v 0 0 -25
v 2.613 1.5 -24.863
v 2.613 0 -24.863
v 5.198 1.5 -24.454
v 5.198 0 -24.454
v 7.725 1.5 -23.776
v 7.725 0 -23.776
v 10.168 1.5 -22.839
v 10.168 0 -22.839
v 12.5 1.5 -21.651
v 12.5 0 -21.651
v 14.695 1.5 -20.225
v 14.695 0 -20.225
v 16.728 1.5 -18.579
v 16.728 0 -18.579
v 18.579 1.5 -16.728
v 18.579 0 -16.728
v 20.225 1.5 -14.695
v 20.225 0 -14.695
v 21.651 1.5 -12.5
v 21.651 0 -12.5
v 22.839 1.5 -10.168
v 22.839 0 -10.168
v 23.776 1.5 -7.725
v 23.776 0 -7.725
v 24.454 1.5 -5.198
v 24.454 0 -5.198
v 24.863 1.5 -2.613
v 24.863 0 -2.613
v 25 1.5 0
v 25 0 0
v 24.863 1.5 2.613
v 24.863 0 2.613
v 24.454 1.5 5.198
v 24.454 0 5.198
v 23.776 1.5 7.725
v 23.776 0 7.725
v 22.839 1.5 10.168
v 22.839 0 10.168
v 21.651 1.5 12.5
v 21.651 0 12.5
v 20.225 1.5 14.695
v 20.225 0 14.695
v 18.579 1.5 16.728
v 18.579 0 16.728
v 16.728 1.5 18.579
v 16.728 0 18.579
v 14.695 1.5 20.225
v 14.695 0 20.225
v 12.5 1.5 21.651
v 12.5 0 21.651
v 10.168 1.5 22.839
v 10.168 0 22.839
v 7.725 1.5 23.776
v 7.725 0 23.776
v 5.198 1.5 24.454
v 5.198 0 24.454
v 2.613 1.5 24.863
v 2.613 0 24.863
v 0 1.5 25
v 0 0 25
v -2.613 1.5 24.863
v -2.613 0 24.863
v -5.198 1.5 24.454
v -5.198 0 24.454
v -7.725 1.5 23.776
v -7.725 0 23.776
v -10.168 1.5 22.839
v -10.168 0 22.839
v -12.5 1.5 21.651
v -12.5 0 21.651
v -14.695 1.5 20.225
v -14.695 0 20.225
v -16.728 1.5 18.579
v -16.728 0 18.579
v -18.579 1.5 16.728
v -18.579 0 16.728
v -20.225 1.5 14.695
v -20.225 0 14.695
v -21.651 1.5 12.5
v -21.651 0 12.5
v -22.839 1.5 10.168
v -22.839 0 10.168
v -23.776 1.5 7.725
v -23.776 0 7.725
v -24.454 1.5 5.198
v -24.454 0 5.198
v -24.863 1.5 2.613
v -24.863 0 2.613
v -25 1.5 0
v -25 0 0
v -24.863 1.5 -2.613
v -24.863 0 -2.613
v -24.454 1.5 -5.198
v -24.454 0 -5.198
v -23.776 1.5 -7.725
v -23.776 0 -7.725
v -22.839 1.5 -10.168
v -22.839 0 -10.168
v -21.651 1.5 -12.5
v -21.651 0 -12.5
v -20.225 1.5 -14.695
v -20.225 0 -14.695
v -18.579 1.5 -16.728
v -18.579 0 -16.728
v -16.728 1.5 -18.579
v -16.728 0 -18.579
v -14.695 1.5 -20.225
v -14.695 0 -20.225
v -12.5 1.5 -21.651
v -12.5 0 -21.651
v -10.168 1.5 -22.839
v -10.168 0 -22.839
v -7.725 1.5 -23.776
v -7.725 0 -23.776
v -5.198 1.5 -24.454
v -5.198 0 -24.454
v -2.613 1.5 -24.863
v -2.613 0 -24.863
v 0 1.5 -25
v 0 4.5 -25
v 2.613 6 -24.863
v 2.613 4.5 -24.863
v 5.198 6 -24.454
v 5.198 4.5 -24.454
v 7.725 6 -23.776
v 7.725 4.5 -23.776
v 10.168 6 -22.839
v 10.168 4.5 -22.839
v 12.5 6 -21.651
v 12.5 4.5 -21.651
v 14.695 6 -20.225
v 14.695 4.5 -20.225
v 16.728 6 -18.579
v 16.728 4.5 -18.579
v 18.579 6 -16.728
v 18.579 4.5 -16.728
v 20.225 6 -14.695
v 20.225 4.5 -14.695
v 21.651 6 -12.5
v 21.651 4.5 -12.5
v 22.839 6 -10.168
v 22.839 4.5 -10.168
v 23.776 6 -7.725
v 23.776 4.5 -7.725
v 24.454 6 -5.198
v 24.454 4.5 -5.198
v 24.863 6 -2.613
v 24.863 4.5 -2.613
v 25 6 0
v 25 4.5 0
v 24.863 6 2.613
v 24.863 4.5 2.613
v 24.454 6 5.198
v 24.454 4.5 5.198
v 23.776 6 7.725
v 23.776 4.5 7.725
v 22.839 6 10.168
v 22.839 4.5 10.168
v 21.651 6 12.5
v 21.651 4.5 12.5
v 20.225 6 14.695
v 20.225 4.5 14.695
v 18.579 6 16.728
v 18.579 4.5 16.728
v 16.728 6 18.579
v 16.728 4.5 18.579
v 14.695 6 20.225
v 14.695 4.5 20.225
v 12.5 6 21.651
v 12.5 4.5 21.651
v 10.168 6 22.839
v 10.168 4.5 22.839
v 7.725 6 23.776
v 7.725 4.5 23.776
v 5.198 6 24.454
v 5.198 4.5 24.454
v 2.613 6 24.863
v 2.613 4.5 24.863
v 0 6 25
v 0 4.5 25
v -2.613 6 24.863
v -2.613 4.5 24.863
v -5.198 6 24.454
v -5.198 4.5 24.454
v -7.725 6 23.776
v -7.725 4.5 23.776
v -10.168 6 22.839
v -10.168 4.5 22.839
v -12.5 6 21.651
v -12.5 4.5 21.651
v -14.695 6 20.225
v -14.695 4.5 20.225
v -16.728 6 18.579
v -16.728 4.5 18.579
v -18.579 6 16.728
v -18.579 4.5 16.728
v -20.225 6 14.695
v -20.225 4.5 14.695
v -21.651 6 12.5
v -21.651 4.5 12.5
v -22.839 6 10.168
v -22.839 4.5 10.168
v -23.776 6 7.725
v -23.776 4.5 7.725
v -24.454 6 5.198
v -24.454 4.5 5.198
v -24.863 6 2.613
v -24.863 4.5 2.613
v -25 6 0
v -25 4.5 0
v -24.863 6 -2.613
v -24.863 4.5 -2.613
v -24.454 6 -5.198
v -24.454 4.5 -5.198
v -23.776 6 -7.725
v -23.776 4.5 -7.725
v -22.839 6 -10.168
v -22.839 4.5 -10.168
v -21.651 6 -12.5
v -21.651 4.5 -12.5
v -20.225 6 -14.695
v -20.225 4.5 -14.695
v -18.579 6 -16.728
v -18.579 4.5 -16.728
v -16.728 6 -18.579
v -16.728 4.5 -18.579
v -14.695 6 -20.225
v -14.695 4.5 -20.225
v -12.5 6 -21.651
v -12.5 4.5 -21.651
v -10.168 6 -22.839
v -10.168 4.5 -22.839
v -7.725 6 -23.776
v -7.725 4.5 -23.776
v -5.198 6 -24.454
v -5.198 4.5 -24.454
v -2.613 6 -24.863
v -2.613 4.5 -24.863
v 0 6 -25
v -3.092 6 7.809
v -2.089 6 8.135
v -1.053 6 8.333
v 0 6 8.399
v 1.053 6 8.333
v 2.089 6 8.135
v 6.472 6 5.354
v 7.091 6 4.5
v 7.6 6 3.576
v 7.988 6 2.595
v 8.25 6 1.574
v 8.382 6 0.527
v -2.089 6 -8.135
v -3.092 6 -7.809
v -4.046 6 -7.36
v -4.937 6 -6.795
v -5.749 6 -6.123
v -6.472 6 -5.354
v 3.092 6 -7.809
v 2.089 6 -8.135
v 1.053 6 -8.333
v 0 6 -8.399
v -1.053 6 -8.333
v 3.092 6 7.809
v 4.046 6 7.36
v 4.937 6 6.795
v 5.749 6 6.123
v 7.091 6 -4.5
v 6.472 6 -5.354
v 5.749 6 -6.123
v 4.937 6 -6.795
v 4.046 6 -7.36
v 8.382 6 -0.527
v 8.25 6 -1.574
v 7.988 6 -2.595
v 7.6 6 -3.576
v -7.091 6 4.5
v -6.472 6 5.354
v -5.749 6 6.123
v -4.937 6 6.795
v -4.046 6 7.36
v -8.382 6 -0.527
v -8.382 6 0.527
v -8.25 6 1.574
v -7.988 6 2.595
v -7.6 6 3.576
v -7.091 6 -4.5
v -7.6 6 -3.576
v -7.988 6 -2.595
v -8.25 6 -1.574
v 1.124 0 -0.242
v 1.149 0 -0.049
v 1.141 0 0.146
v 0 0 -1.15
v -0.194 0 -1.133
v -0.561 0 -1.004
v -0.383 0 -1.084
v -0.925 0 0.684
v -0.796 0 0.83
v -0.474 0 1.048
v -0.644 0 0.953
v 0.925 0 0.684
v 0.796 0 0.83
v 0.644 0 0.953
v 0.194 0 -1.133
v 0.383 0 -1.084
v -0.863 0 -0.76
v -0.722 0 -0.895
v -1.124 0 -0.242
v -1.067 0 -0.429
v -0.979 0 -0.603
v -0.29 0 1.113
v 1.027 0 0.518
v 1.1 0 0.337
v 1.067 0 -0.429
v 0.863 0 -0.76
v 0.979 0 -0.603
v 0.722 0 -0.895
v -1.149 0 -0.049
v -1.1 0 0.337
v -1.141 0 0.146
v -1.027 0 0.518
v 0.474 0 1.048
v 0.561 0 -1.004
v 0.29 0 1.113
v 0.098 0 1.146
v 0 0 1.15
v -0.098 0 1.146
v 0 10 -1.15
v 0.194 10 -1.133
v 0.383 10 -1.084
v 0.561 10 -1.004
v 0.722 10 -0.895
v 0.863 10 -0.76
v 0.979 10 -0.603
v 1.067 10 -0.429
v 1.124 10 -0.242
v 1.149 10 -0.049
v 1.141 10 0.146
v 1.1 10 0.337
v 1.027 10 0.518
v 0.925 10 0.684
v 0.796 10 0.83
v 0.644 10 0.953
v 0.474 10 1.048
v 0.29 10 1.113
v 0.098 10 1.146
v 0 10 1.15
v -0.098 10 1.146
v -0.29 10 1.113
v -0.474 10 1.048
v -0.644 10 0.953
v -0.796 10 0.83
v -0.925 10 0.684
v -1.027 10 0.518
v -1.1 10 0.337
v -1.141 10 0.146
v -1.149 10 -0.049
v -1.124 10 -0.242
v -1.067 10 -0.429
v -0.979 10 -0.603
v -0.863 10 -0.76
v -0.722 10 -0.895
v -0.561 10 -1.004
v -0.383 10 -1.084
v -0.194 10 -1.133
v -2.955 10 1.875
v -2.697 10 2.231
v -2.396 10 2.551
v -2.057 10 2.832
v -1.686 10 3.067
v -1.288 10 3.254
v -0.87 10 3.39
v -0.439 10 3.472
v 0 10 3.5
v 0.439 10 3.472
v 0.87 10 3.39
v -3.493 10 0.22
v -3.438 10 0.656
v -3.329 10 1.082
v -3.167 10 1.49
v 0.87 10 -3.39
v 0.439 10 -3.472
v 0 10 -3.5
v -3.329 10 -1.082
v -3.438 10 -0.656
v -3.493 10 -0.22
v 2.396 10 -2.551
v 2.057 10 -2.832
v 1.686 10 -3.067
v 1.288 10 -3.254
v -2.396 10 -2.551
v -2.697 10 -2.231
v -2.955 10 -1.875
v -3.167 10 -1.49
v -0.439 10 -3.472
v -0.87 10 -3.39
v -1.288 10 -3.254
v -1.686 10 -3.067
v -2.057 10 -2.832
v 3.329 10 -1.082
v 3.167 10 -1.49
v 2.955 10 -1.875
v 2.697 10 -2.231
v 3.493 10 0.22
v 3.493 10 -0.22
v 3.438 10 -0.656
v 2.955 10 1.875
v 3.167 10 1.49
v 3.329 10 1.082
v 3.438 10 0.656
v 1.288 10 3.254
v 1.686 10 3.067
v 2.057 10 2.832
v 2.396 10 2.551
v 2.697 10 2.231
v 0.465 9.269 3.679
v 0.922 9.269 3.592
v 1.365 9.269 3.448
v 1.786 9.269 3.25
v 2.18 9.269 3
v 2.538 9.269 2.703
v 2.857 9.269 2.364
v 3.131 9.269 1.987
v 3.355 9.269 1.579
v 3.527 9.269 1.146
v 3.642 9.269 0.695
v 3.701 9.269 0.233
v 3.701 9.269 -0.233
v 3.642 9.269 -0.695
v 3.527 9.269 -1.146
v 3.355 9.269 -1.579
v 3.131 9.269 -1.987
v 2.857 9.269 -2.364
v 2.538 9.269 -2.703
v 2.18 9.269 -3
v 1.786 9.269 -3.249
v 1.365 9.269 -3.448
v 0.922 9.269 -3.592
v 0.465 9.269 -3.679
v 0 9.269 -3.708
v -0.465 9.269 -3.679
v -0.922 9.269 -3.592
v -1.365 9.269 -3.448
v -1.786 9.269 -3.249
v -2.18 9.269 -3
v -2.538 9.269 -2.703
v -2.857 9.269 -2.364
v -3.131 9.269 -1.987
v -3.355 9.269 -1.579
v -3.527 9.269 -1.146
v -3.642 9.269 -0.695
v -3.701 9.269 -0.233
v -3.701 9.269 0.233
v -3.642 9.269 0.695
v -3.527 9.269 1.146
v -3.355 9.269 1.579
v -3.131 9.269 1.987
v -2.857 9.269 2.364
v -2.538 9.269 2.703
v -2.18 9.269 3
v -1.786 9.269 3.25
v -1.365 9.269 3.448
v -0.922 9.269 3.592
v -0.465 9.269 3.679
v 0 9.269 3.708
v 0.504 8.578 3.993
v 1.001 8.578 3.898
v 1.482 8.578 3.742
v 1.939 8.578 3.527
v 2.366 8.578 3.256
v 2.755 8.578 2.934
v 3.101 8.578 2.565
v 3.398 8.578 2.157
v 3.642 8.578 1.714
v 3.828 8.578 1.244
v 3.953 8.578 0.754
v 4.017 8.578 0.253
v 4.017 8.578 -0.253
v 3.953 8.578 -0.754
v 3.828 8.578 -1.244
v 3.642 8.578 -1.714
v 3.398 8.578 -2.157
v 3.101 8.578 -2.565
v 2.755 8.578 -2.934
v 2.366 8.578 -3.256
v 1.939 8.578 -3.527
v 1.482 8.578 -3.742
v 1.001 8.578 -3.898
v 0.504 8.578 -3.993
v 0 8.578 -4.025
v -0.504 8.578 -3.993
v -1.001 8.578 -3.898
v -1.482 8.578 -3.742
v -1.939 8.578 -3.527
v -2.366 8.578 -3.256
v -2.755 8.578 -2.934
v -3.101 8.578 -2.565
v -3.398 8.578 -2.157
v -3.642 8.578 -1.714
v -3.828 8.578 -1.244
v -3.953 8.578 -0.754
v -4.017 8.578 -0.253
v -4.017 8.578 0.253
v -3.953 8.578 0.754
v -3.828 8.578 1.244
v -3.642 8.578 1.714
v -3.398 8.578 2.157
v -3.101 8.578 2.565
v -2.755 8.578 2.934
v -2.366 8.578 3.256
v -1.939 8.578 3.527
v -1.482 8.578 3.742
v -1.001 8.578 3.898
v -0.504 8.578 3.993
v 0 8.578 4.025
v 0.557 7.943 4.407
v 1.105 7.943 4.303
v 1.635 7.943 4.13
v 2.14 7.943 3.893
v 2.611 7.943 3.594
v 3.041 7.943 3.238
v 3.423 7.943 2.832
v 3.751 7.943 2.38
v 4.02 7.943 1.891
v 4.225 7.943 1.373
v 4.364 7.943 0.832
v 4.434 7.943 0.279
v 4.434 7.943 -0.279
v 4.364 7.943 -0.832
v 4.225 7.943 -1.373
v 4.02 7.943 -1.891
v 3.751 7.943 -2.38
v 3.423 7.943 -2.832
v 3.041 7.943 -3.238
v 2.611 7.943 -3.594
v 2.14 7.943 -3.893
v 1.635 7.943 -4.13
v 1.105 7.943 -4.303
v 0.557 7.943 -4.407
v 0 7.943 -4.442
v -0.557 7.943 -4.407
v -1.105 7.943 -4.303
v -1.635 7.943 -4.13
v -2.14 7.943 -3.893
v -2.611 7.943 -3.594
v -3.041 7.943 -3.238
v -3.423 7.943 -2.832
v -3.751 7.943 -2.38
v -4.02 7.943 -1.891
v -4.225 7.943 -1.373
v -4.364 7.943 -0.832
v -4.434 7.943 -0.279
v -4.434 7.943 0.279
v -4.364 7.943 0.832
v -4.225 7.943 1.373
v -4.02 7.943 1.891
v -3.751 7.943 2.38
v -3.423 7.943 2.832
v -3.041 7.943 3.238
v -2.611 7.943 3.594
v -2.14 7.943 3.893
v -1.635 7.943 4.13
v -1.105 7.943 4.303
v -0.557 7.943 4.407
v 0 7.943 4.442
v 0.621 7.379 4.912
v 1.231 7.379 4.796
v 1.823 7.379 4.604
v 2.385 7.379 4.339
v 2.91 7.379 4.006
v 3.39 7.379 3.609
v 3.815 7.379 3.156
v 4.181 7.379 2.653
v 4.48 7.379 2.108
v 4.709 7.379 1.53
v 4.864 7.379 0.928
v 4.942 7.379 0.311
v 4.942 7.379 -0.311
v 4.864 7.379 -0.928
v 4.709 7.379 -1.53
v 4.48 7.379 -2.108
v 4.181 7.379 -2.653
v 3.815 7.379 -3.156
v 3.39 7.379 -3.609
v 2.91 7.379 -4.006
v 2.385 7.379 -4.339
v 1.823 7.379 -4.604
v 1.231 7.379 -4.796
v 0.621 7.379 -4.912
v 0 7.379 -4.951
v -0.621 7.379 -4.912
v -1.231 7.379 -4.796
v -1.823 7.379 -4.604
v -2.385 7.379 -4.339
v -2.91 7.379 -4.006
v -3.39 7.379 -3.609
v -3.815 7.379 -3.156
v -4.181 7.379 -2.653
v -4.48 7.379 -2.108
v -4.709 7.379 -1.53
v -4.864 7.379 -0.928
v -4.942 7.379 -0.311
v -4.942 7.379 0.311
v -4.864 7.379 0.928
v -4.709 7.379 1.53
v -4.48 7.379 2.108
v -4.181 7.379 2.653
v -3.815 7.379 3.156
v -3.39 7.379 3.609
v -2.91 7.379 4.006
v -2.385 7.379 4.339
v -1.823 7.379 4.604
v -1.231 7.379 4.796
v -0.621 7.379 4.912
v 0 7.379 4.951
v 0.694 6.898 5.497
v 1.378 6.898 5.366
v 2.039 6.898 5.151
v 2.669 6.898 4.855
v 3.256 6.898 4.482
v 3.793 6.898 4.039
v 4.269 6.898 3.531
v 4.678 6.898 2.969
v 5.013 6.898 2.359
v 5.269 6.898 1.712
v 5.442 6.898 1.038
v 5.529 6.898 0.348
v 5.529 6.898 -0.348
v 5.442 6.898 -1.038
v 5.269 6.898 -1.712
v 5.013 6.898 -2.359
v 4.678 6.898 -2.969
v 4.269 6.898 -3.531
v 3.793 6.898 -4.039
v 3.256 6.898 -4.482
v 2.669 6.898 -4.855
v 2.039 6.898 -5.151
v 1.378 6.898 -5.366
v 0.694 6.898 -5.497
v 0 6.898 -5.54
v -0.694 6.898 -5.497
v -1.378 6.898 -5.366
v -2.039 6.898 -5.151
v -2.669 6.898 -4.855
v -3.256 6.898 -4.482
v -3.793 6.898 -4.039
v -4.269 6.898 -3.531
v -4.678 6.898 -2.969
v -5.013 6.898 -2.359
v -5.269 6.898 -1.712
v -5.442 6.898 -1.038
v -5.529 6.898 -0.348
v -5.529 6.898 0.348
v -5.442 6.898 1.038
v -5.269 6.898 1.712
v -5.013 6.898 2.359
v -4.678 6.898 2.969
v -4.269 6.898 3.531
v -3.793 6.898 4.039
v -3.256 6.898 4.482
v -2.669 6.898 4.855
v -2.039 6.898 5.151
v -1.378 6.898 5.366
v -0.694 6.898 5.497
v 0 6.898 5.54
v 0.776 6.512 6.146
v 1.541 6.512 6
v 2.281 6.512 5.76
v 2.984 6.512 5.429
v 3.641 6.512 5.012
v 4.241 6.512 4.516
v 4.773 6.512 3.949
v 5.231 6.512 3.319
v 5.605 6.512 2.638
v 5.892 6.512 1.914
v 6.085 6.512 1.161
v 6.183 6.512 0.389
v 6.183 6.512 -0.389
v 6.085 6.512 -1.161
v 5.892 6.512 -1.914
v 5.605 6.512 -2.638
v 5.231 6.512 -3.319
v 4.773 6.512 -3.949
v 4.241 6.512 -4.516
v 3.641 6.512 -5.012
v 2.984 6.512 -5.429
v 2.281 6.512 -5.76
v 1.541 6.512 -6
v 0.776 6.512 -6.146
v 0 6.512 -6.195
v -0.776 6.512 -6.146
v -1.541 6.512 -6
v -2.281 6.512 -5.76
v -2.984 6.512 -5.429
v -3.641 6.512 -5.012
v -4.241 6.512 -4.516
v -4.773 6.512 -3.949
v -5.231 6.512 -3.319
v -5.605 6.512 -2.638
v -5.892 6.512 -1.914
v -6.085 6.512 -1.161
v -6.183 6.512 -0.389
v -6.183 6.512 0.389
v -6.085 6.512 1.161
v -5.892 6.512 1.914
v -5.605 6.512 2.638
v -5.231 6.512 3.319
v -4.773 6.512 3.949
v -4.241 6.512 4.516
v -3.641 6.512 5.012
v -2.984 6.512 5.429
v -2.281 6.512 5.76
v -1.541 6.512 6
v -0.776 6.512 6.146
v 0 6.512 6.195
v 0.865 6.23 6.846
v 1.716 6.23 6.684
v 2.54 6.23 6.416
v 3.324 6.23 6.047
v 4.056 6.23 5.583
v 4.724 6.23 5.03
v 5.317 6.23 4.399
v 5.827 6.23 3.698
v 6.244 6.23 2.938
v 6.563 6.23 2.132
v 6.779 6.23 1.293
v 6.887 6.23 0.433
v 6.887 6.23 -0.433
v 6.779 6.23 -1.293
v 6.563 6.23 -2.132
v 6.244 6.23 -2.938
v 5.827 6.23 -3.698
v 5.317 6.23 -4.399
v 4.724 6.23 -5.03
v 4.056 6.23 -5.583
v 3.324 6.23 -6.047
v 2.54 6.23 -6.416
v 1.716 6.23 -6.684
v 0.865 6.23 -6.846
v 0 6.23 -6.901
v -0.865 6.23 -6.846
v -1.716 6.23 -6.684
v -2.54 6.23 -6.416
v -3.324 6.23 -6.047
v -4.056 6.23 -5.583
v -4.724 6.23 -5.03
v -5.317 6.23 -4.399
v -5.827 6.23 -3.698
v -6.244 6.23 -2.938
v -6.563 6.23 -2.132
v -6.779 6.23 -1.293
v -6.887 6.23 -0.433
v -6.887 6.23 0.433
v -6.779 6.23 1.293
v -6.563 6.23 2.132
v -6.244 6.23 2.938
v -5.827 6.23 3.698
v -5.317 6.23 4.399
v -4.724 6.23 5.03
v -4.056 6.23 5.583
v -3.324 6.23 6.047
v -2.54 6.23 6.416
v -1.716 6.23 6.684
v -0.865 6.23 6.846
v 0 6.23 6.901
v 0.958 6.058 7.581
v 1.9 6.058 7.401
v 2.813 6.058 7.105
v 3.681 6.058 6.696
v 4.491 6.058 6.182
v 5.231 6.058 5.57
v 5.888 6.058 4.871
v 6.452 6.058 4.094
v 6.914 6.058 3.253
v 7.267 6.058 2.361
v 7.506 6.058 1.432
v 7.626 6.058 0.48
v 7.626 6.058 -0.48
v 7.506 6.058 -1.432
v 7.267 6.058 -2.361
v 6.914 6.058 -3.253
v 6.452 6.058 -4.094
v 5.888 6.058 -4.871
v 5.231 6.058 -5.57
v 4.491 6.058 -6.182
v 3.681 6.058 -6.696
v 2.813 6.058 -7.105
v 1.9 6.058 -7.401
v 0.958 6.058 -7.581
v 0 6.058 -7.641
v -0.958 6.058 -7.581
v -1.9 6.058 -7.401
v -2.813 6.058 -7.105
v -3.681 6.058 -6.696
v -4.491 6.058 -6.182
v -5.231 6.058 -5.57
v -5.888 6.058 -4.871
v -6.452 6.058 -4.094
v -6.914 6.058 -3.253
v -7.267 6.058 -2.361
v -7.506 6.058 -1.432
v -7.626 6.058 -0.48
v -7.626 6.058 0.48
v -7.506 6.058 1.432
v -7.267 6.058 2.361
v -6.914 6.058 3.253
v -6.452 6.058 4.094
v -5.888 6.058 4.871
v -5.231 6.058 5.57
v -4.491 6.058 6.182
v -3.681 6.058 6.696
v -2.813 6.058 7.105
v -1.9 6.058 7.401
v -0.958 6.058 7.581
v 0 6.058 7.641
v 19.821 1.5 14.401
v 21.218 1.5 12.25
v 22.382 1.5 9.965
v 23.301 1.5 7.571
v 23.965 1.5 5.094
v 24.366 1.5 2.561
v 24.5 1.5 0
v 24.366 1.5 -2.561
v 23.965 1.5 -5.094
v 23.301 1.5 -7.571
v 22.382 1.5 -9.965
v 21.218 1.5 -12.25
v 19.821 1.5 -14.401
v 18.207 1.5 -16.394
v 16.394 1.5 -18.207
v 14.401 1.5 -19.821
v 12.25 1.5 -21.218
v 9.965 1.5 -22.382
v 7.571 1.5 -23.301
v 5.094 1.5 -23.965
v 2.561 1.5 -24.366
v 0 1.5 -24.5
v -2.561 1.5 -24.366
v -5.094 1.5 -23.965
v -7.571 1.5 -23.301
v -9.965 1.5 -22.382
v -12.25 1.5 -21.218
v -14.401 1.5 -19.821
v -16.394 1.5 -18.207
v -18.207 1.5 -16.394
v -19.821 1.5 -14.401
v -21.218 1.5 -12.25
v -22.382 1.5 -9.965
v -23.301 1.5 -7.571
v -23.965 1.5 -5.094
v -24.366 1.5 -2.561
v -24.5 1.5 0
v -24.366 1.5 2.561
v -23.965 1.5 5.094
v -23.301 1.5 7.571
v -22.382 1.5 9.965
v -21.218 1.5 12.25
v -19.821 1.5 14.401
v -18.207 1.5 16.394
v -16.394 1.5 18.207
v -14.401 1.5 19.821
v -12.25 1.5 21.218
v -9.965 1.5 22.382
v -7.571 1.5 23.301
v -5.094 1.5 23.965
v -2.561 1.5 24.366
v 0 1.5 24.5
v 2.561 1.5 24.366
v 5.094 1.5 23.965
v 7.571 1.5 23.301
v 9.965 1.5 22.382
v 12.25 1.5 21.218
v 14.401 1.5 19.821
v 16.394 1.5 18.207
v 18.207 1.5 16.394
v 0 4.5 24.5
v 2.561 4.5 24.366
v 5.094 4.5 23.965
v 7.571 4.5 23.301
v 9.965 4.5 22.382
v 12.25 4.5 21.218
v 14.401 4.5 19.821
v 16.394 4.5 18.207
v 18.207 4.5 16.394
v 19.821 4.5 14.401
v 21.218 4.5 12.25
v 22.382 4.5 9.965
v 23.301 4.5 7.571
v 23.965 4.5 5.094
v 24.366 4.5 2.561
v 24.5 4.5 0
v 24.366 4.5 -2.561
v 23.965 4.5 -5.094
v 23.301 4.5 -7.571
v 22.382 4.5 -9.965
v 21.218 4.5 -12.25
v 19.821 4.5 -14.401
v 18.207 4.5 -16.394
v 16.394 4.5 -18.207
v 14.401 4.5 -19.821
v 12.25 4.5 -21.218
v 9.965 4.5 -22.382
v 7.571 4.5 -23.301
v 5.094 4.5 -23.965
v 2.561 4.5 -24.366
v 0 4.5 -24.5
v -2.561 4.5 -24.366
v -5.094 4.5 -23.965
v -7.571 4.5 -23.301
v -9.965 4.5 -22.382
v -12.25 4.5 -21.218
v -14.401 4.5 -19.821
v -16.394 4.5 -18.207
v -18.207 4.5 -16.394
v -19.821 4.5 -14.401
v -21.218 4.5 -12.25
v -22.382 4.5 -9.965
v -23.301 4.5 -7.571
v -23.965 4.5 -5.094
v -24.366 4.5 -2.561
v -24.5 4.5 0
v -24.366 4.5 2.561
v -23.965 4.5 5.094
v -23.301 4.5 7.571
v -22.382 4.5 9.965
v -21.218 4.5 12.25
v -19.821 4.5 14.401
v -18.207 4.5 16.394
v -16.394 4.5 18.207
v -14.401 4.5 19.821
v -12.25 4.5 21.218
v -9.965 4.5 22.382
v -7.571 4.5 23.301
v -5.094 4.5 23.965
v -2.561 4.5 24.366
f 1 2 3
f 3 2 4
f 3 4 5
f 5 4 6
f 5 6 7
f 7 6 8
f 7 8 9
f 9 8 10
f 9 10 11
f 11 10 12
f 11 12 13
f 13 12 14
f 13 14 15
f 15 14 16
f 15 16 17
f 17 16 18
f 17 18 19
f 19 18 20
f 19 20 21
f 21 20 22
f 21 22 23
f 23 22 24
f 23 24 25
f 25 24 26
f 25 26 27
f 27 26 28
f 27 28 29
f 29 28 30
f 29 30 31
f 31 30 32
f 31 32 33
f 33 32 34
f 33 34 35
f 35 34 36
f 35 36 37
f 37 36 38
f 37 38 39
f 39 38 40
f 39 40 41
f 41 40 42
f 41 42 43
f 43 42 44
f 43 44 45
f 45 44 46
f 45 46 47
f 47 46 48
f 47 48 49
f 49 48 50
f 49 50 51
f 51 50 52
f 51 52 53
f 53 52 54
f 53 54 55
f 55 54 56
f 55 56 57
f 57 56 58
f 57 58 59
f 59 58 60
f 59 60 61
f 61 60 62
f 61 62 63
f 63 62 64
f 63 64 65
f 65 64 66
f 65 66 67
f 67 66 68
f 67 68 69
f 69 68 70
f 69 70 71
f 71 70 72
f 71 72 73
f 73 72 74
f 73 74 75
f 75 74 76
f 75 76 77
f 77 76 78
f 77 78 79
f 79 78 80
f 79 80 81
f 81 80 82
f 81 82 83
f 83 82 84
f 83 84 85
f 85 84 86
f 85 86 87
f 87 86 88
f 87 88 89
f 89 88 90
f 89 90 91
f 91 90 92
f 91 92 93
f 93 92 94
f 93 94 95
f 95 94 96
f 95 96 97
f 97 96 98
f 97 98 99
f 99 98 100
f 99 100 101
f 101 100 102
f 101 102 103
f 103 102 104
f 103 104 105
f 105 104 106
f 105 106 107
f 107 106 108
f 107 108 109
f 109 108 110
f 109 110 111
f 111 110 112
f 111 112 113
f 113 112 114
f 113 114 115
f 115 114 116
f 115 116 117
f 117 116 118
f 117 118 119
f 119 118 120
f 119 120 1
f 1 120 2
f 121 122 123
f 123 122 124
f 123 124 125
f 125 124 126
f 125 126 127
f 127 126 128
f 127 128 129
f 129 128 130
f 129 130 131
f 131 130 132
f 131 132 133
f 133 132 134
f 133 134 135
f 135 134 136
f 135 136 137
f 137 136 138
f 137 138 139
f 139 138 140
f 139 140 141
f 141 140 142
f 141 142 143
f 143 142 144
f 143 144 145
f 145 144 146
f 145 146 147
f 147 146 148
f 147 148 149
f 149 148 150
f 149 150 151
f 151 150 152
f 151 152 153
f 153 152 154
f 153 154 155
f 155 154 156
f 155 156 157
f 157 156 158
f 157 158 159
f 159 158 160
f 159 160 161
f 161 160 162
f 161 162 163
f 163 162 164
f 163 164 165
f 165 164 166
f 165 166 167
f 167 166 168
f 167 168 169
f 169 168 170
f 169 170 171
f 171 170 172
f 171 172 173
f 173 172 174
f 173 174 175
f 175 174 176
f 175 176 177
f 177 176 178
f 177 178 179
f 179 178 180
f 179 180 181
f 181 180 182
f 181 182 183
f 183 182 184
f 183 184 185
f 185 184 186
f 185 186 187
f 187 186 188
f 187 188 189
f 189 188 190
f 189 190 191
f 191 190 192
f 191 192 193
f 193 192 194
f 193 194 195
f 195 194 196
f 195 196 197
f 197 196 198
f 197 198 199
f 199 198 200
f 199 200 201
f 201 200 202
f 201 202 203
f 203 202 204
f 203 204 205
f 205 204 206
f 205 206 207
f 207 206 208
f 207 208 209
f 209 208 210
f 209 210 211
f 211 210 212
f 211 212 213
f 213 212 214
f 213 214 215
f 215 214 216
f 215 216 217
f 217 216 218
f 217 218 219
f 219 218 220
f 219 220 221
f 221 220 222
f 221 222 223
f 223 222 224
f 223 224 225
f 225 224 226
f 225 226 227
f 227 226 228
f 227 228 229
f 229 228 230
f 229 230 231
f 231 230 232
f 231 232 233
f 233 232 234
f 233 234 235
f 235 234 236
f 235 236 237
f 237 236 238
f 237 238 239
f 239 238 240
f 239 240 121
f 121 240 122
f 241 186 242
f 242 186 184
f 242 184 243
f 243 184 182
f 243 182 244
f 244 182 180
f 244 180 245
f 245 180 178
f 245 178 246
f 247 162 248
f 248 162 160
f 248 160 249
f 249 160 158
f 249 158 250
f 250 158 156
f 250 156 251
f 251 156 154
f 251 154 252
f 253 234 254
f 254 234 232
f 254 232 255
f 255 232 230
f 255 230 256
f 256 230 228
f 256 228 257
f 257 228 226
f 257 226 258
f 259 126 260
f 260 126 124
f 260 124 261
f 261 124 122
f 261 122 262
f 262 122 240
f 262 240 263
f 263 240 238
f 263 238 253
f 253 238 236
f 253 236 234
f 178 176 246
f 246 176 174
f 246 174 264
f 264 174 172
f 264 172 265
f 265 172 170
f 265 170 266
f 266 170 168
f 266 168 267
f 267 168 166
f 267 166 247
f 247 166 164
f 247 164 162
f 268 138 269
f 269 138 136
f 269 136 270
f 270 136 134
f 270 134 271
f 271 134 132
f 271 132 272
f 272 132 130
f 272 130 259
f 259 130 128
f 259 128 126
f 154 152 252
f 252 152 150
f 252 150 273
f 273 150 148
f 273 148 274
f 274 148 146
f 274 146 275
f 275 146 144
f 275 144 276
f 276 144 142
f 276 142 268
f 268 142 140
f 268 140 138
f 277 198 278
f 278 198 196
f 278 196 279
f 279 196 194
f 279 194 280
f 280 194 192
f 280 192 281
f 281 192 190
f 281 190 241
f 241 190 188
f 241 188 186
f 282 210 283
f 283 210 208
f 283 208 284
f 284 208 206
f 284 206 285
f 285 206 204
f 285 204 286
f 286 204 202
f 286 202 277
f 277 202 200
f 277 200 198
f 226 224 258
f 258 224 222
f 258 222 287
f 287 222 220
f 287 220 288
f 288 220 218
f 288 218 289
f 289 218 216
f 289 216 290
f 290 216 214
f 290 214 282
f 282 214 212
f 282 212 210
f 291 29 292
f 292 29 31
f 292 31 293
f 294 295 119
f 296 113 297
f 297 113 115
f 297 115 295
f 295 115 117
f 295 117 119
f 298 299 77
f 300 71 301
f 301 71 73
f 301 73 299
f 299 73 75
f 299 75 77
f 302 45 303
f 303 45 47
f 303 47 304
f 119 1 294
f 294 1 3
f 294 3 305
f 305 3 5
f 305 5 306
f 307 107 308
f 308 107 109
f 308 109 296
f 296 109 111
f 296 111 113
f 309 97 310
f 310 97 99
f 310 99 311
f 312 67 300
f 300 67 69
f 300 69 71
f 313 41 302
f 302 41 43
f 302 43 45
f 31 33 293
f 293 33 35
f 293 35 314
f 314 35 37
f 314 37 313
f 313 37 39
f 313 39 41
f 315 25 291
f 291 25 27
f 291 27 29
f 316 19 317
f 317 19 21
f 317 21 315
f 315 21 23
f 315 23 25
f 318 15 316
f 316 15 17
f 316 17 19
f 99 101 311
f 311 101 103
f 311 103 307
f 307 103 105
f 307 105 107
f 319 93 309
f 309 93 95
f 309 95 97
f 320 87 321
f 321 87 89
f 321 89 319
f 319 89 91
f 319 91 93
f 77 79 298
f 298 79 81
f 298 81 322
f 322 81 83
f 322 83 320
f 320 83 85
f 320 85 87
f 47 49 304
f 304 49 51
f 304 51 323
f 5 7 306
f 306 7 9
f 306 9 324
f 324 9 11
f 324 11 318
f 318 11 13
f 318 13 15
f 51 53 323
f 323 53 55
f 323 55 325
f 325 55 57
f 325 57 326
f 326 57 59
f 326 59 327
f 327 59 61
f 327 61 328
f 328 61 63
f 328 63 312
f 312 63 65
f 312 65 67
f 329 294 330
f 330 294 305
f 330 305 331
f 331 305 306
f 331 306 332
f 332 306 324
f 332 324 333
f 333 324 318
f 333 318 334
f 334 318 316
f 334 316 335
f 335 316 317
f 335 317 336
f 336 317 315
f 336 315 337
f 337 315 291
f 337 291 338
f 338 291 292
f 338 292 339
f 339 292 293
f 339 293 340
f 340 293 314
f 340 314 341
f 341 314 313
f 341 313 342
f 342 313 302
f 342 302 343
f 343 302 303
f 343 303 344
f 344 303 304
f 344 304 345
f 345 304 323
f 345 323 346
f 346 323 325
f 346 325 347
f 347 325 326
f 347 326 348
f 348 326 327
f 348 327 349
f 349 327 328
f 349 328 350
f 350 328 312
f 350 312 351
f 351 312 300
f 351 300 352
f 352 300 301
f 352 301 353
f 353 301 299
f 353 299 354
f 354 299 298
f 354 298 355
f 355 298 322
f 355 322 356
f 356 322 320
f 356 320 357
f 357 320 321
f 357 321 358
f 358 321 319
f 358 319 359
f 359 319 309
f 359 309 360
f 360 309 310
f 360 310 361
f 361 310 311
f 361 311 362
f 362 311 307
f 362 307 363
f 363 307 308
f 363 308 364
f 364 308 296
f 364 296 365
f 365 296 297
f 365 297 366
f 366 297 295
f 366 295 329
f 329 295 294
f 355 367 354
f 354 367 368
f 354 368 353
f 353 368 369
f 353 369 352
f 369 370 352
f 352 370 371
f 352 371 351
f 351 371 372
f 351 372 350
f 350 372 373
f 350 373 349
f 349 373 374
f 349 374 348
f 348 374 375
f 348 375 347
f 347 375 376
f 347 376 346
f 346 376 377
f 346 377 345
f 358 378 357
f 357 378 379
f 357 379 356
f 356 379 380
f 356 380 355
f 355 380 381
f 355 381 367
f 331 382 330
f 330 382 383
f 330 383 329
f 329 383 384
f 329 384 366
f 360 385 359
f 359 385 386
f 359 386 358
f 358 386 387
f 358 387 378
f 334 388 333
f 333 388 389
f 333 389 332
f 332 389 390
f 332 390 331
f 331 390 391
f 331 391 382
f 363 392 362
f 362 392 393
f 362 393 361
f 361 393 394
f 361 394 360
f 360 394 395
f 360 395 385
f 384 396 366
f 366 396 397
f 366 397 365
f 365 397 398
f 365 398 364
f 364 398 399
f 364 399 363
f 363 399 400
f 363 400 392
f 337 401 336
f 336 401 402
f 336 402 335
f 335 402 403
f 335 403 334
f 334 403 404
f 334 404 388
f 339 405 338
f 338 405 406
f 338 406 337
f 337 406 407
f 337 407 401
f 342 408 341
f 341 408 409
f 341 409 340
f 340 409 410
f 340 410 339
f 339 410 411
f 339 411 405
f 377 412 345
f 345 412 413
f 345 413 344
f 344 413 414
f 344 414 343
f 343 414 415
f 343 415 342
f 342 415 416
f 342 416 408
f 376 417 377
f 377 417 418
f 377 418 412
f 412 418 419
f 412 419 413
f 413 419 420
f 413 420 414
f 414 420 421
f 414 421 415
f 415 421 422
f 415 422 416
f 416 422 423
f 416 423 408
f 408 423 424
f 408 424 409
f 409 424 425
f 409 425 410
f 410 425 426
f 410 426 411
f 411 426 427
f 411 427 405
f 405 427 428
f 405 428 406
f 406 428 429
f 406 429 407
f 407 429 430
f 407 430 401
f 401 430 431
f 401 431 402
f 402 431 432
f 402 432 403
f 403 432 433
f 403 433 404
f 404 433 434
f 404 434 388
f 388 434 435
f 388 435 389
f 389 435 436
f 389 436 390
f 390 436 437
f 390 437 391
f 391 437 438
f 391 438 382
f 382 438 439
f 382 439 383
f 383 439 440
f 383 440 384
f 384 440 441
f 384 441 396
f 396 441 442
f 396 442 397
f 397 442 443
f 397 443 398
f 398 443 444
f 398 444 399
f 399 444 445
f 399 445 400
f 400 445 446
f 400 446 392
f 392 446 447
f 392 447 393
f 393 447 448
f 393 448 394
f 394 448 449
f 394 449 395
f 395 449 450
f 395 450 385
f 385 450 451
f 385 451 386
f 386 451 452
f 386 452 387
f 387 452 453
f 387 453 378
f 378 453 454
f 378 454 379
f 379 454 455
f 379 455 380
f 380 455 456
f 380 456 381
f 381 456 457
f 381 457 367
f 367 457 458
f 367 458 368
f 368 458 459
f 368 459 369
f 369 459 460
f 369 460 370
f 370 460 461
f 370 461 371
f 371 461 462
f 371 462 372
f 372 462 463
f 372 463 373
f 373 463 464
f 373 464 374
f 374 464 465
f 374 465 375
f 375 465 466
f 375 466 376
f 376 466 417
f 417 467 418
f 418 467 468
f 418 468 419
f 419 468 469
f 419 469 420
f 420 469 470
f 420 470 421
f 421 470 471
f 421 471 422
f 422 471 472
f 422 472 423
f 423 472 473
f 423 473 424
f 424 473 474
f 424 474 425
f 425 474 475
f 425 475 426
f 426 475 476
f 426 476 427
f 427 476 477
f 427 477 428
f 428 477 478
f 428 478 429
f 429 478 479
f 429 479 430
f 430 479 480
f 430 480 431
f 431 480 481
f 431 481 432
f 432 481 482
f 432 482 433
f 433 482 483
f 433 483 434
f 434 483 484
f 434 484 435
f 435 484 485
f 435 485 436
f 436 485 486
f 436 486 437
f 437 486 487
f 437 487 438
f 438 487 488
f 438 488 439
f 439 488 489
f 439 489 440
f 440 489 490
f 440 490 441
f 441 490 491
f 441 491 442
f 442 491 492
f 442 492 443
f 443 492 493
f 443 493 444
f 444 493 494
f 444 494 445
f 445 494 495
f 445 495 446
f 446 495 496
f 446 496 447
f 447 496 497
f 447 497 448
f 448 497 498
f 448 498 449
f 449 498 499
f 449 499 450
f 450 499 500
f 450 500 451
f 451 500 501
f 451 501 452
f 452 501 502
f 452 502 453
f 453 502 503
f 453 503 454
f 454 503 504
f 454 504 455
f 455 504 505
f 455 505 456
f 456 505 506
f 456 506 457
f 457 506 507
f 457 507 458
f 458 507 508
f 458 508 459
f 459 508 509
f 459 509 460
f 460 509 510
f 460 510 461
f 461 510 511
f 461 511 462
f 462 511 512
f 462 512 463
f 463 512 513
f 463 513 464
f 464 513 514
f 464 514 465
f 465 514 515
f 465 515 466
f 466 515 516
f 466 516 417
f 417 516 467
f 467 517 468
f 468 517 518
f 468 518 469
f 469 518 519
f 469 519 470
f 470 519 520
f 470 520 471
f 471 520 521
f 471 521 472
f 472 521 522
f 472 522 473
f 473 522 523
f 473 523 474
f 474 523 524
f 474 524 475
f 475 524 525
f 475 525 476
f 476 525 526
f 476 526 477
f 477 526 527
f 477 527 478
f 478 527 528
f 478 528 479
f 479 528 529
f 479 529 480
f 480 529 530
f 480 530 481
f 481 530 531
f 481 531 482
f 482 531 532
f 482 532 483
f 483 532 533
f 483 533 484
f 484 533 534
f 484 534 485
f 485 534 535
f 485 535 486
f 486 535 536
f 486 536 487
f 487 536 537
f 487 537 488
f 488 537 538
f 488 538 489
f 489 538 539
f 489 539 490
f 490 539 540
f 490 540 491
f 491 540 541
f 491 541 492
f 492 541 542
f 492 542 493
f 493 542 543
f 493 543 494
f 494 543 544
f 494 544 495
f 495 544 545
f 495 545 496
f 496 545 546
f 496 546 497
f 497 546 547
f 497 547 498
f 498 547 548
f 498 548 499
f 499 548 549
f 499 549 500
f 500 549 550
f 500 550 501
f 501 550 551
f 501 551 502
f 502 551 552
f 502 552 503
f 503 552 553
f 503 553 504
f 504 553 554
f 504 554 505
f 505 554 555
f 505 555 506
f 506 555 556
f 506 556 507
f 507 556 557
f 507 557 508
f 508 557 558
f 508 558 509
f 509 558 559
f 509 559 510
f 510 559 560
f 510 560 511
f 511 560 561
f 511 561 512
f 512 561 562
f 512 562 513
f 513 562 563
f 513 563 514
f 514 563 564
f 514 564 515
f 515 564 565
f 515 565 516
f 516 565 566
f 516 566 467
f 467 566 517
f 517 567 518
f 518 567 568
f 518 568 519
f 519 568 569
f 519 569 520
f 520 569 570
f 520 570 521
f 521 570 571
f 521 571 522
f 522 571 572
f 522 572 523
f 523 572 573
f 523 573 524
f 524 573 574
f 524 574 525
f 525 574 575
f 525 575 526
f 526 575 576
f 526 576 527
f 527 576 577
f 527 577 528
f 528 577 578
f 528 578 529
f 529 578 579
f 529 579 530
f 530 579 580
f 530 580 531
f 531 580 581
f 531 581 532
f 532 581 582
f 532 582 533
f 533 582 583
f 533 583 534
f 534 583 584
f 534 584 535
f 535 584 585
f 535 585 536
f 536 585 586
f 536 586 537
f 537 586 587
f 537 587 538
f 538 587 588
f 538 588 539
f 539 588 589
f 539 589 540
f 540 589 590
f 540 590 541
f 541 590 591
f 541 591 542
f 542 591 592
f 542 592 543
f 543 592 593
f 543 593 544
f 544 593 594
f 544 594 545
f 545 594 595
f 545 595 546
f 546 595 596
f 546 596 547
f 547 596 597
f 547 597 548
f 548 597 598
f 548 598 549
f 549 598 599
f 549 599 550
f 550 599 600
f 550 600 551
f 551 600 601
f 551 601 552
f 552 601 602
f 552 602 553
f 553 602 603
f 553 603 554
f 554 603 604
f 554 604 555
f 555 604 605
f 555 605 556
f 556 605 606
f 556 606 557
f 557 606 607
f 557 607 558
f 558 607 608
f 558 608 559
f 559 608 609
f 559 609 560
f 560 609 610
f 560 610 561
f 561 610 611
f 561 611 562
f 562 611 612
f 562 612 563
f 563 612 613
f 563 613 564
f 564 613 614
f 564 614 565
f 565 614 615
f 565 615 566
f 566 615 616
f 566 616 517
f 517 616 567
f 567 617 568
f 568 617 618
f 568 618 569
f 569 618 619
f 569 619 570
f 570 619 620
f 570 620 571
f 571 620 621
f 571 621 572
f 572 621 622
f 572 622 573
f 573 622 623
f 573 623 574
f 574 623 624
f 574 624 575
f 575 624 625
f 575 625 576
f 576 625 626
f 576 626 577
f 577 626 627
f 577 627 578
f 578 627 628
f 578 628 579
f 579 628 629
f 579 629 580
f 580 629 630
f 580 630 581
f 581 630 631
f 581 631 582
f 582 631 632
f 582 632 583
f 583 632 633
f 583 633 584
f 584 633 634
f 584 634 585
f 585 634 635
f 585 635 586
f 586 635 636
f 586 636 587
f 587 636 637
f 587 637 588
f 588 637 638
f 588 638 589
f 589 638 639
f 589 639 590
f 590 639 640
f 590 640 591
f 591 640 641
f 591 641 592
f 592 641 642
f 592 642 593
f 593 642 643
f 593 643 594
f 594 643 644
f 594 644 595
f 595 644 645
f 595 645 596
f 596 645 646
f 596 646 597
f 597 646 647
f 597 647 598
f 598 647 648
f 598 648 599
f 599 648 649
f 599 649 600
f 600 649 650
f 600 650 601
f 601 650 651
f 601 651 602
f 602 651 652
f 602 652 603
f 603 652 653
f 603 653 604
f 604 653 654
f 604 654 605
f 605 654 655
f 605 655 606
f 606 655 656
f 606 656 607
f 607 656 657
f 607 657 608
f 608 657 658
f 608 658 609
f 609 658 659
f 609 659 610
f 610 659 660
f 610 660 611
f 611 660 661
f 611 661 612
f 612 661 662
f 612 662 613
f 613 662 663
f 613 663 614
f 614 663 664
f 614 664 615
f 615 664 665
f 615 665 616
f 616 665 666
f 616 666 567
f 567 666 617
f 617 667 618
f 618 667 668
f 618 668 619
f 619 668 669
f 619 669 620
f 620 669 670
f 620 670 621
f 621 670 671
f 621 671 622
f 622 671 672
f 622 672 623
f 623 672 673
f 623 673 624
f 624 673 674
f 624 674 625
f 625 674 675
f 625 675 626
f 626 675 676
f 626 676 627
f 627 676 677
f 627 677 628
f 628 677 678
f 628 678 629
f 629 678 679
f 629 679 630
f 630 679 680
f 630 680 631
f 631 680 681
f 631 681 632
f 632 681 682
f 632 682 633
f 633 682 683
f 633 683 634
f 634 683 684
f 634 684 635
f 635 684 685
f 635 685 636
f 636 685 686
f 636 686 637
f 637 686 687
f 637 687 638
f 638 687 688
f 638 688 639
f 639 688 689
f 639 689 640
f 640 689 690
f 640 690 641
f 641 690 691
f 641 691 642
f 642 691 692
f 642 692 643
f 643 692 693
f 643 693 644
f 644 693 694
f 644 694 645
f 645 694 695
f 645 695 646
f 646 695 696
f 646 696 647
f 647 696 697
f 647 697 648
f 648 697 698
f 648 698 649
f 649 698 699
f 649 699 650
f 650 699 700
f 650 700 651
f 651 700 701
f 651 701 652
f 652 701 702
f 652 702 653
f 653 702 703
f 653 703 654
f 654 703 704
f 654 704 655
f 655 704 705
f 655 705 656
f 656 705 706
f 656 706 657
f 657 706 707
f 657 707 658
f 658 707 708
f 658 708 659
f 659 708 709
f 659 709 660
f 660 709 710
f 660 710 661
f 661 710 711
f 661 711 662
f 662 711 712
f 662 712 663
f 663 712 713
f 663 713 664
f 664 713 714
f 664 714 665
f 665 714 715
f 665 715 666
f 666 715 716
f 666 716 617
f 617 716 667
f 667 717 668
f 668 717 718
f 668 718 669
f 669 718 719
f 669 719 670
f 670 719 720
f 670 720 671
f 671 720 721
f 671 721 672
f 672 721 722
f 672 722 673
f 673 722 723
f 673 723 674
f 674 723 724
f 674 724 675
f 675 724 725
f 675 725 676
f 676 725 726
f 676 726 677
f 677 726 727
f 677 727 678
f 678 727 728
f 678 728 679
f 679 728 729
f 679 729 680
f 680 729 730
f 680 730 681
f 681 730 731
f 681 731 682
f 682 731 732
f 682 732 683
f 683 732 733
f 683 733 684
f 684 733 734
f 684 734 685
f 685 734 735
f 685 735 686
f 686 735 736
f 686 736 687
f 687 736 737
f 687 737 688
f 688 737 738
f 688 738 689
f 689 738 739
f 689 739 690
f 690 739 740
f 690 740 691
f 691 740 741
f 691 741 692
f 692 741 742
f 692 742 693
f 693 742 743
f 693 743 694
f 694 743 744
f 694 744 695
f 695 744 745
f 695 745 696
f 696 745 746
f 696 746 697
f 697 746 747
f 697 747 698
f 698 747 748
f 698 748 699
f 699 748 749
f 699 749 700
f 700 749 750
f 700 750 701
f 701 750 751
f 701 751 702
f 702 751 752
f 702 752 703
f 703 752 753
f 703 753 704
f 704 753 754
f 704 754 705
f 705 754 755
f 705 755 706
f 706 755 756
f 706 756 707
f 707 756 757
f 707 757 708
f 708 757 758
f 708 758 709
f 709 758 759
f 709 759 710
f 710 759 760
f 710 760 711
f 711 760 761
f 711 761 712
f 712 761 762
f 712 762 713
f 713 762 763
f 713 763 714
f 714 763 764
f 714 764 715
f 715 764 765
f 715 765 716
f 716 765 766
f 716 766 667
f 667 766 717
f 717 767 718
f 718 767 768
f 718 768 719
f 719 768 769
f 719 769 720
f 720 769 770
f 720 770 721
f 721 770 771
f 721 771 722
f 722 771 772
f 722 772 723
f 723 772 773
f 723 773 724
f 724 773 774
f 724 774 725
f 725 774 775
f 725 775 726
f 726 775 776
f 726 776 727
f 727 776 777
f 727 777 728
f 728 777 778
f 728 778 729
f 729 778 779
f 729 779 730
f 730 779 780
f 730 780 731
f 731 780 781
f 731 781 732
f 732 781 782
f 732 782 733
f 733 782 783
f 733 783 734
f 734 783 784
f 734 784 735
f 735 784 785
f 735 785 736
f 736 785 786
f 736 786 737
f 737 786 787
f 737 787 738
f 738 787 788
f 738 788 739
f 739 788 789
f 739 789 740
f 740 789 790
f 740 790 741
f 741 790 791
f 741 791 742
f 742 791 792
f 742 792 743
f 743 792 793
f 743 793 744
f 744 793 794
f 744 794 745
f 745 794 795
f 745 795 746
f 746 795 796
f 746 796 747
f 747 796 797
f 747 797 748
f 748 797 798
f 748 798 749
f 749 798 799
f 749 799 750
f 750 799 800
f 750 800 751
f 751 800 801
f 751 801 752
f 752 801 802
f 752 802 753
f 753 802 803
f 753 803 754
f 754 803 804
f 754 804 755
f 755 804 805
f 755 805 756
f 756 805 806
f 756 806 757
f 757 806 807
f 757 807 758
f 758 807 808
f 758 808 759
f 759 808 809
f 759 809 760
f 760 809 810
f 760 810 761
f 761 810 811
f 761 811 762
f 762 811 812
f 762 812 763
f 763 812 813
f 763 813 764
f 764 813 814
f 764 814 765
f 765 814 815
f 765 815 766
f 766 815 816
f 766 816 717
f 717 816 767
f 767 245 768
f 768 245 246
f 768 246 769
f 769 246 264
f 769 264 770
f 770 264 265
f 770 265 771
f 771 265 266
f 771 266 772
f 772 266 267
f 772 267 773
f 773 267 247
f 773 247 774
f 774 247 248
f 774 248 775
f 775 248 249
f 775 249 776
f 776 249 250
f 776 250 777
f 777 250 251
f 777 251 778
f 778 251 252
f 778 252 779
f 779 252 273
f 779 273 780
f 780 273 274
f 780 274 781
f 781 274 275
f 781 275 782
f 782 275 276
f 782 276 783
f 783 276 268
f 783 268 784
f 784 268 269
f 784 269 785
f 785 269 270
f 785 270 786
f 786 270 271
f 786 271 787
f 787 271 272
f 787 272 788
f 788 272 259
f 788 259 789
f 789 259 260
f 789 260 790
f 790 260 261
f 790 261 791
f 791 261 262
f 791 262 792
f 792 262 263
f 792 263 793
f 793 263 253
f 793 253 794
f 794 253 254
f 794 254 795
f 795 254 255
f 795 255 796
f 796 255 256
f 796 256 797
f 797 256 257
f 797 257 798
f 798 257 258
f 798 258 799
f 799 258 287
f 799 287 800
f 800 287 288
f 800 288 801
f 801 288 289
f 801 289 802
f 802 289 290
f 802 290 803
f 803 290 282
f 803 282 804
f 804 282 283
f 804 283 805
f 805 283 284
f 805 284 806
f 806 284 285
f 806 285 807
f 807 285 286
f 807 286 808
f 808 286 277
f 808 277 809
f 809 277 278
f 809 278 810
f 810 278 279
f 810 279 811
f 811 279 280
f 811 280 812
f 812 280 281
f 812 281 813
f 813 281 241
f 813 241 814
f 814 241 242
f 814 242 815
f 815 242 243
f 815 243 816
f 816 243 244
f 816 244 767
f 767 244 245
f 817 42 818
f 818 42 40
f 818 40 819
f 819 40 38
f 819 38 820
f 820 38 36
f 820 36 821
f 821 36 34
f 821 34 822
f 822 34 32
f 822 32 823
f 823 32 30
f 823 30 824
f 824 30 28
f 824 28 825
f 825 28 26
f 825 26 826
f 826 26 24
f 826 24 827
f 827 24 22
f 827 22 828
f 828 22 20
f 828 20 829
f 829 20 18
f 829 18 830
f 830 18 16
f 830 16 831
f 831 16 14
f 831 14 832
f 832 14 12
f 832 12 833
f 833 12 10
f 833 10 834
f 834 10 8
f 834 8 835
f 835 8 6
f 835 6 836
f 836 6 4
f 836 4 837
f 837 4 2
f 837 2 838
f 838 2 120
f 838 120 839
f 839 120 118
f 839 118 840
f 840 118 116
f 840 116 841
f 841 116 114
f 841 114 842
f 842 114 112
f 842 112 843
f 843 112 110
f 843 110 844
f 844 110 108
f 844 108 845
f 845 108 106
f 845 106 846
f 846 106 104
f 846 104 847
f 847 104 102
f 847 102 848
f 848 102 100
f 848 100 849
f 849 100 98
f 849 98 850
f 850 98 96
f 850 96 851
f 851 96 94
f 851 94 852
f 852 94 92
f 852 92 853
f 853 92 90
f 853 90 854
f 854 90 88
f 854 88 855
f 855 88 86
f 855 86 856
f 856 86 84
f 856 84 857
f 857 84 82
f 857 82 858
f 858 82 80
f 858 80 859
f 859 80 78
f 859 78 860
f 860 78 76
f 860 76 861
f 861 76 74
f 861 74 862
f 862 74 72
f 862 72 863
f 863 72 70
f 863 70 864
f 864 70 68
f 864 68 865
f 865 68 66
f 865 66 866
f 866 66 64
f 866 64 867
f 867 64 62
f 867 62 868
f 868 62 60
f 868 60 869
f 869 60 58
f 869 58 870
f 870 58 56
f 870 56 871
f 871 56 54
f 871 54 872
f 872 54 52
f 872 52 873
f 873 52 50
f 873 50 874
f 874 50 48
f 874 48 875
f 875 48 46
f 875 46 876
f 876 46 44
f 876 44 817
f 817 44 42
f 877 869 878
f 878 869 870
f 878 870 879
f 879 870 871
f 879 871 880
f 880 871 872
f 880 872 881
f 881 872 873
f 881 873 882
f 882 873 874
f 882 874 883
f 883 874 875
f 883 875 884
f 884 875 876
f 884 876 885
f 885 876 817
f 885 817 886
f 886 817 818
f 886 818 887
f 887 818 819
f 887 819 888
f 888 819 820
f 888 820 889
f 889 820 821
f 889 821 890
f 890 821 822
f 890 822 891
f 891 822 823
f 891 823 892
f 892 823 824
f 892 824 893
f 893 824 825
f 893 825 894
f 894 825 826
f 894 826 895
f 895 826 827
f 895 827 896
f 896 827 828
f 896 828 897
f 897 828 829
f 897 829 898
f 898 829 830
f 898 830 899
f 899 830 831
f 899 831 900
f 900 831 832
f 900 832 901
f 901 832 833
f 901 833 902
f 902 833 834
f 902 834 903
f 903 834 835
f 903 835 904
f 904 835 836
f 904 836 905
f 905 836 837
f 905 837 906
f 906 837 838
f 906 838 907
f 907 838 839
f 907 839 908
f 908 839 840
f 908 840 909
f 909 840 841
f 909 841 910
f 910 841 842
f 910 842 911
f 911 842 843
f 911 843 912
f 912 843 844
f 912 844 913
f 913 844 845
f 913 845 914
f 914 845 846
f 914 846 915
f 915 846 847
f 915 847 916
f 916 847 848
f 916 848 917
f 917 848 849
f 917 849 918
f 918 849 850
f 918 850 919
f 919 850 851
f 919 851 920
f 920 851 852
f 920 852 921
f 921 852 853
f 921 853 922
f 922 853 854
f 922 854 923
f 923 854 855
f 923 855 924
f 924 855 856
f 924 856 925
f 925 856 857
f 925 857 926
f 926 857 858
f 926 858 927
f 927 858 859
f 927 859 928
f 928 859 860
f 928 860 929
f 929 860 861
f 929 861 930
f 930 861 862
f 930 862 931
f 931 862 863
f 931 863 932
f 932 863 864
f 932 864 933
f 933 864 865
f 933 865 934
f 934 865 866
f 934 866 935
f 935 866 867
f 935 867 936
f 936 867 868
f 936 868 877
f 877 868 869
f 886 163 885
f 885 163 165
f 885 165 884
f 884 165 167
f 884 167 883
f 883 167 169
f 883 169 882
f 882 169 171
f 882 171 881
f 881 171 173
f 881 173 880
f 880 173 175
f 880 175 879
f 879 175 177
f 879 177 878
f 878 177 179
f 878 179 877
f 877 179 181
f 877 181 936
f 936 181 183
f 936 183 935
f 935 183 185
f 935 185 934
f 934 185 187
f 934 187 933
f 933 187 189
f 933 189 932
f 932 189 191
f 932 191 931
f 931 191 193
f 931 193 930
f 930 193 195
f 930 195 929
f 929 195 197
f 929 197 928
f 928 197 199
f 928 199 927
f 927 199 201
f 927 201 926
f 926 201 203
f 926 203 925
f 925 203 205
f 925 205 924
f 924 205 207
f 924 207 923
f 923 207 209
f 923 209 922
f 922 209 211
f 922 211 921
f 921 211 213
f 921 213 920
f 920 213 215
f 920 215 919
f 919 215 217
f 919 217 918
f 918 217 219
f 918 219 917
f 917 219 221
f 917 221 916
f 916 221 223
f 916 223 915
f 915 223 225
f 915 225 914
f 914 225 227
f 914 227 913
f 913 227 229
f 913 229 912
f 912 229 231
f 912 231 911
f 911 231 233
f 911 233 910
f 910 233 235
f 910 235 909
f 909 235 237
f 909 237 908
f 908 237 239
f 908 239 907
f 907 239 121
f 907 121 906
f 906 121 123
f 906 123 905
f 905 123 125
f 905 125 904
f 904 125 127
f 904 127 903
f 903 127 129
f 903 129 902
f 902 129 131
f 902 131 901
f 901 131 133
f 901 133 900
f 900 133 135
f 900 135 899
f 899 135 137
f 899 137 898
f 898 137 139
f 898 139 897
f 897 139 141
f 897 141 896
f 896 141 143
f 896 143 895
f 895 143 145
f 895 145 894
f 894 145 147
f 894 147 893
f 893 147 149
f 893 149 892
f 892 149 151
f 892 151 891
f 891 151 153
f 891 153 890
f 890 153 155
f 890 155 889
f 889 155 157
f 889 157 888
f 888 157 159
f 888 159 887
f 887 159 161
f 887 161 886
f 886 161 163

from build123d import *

# Parameters (mm, degrees)
SKETCH1_R           = 25
SKETCH1_R_2         = 1.15
BOSS_EXTRUDE1_DEPTH = 6
SKETCH1_3_R         = 3.5
SKETCH1_3_R_2       = 1.15
BOSS_EXTRUDE2_DEPTH = 10
FILLET1_R           = 5
SKETCH2_W           = 0.5
SKETCH2_H           = 3


with BuildPart() as part:
    # Sketch1 → Boss-Extrude1 (new body)
    with BuildSketch(Plane(origin=(0, 0, 0), x_dir=(1, 0, 0), z_dir=(0, 1, 0))):
        with Locations(Location((0, 0, 0), (0, 0, 270))):
            Circle(SKETCH1_R)
        with Locations(Location((0, 0, 0), (0, 0, 270))):
            Circle(SKETCH1_R_2, mode=Mode.SUBTRACT)
    extrude(amount=BOSS_EXTRUDE1_DEPTH)

    # Sketch1<3> → Boss-Extrude2 (add)
    with BuildSketch(Plane(origin=(0, 0, 0), x_dir=(1, 0, 0), z_dir=(0, 1, 0))):
        with Locations(Location((0, 0, 0), (0, 0, 270))):
            Circle(SKETCH1_3_R)
        with Locations(Location((0, 0, 0), (0, 0, 270))):
            Circle(SKETCH1_3_R_2, mode=Mode.SUBTRACT)
    extrude(amount=BOSS_EXTRUDE2_DEPTH)

    # Fillet1
    # the kernel refuses this fillet: 5 mm, written as the material it adds along each edge
    with BuildSketch(Plane(origin=(0, 6, 0), x_dir=(0, 0, 1), z_dir=(1, 0, 0))) as fillet1_piece_1:
        with BuildLine():
            CenterArc((8.398979486, -5), FILLET1_R, 90, 78.463040967)
            Line((3.5, -4), (3.40202041, -3.98))
            ThreePointArc((3.40202041, -3.98), (3.4, -2), (3.4, 0))
            Line((3.4, 0), (3.5, 0.1))
            Line((3.5, 0.1), (8.398979486, 0.1))
            Line((8.398979486, 0.1), (8.398979486, 0))
        make_face()
    revolve(axis=Axis((0, 6, 0), (0, -1, 0)))

    # Sketch2 → Cut-Revolve1 (revolve, cut)
    with BuildSketch(Plane.XY, mode=Mode.PRIVATE) as cut_revolve1_sk:
        with Locations((24.75, 3)):
            Rectangle(SKETCH2_W, SKETCH2_H)
    revolve(cut_revolve1_sk.sketch.rotate(Axis((0, 6, 0), (0, -1, 0)), 90), axis=Axis((0, 6, 0), (0, -1, 0)), mode=Mode.SUBTRACT)


solid = part.part
